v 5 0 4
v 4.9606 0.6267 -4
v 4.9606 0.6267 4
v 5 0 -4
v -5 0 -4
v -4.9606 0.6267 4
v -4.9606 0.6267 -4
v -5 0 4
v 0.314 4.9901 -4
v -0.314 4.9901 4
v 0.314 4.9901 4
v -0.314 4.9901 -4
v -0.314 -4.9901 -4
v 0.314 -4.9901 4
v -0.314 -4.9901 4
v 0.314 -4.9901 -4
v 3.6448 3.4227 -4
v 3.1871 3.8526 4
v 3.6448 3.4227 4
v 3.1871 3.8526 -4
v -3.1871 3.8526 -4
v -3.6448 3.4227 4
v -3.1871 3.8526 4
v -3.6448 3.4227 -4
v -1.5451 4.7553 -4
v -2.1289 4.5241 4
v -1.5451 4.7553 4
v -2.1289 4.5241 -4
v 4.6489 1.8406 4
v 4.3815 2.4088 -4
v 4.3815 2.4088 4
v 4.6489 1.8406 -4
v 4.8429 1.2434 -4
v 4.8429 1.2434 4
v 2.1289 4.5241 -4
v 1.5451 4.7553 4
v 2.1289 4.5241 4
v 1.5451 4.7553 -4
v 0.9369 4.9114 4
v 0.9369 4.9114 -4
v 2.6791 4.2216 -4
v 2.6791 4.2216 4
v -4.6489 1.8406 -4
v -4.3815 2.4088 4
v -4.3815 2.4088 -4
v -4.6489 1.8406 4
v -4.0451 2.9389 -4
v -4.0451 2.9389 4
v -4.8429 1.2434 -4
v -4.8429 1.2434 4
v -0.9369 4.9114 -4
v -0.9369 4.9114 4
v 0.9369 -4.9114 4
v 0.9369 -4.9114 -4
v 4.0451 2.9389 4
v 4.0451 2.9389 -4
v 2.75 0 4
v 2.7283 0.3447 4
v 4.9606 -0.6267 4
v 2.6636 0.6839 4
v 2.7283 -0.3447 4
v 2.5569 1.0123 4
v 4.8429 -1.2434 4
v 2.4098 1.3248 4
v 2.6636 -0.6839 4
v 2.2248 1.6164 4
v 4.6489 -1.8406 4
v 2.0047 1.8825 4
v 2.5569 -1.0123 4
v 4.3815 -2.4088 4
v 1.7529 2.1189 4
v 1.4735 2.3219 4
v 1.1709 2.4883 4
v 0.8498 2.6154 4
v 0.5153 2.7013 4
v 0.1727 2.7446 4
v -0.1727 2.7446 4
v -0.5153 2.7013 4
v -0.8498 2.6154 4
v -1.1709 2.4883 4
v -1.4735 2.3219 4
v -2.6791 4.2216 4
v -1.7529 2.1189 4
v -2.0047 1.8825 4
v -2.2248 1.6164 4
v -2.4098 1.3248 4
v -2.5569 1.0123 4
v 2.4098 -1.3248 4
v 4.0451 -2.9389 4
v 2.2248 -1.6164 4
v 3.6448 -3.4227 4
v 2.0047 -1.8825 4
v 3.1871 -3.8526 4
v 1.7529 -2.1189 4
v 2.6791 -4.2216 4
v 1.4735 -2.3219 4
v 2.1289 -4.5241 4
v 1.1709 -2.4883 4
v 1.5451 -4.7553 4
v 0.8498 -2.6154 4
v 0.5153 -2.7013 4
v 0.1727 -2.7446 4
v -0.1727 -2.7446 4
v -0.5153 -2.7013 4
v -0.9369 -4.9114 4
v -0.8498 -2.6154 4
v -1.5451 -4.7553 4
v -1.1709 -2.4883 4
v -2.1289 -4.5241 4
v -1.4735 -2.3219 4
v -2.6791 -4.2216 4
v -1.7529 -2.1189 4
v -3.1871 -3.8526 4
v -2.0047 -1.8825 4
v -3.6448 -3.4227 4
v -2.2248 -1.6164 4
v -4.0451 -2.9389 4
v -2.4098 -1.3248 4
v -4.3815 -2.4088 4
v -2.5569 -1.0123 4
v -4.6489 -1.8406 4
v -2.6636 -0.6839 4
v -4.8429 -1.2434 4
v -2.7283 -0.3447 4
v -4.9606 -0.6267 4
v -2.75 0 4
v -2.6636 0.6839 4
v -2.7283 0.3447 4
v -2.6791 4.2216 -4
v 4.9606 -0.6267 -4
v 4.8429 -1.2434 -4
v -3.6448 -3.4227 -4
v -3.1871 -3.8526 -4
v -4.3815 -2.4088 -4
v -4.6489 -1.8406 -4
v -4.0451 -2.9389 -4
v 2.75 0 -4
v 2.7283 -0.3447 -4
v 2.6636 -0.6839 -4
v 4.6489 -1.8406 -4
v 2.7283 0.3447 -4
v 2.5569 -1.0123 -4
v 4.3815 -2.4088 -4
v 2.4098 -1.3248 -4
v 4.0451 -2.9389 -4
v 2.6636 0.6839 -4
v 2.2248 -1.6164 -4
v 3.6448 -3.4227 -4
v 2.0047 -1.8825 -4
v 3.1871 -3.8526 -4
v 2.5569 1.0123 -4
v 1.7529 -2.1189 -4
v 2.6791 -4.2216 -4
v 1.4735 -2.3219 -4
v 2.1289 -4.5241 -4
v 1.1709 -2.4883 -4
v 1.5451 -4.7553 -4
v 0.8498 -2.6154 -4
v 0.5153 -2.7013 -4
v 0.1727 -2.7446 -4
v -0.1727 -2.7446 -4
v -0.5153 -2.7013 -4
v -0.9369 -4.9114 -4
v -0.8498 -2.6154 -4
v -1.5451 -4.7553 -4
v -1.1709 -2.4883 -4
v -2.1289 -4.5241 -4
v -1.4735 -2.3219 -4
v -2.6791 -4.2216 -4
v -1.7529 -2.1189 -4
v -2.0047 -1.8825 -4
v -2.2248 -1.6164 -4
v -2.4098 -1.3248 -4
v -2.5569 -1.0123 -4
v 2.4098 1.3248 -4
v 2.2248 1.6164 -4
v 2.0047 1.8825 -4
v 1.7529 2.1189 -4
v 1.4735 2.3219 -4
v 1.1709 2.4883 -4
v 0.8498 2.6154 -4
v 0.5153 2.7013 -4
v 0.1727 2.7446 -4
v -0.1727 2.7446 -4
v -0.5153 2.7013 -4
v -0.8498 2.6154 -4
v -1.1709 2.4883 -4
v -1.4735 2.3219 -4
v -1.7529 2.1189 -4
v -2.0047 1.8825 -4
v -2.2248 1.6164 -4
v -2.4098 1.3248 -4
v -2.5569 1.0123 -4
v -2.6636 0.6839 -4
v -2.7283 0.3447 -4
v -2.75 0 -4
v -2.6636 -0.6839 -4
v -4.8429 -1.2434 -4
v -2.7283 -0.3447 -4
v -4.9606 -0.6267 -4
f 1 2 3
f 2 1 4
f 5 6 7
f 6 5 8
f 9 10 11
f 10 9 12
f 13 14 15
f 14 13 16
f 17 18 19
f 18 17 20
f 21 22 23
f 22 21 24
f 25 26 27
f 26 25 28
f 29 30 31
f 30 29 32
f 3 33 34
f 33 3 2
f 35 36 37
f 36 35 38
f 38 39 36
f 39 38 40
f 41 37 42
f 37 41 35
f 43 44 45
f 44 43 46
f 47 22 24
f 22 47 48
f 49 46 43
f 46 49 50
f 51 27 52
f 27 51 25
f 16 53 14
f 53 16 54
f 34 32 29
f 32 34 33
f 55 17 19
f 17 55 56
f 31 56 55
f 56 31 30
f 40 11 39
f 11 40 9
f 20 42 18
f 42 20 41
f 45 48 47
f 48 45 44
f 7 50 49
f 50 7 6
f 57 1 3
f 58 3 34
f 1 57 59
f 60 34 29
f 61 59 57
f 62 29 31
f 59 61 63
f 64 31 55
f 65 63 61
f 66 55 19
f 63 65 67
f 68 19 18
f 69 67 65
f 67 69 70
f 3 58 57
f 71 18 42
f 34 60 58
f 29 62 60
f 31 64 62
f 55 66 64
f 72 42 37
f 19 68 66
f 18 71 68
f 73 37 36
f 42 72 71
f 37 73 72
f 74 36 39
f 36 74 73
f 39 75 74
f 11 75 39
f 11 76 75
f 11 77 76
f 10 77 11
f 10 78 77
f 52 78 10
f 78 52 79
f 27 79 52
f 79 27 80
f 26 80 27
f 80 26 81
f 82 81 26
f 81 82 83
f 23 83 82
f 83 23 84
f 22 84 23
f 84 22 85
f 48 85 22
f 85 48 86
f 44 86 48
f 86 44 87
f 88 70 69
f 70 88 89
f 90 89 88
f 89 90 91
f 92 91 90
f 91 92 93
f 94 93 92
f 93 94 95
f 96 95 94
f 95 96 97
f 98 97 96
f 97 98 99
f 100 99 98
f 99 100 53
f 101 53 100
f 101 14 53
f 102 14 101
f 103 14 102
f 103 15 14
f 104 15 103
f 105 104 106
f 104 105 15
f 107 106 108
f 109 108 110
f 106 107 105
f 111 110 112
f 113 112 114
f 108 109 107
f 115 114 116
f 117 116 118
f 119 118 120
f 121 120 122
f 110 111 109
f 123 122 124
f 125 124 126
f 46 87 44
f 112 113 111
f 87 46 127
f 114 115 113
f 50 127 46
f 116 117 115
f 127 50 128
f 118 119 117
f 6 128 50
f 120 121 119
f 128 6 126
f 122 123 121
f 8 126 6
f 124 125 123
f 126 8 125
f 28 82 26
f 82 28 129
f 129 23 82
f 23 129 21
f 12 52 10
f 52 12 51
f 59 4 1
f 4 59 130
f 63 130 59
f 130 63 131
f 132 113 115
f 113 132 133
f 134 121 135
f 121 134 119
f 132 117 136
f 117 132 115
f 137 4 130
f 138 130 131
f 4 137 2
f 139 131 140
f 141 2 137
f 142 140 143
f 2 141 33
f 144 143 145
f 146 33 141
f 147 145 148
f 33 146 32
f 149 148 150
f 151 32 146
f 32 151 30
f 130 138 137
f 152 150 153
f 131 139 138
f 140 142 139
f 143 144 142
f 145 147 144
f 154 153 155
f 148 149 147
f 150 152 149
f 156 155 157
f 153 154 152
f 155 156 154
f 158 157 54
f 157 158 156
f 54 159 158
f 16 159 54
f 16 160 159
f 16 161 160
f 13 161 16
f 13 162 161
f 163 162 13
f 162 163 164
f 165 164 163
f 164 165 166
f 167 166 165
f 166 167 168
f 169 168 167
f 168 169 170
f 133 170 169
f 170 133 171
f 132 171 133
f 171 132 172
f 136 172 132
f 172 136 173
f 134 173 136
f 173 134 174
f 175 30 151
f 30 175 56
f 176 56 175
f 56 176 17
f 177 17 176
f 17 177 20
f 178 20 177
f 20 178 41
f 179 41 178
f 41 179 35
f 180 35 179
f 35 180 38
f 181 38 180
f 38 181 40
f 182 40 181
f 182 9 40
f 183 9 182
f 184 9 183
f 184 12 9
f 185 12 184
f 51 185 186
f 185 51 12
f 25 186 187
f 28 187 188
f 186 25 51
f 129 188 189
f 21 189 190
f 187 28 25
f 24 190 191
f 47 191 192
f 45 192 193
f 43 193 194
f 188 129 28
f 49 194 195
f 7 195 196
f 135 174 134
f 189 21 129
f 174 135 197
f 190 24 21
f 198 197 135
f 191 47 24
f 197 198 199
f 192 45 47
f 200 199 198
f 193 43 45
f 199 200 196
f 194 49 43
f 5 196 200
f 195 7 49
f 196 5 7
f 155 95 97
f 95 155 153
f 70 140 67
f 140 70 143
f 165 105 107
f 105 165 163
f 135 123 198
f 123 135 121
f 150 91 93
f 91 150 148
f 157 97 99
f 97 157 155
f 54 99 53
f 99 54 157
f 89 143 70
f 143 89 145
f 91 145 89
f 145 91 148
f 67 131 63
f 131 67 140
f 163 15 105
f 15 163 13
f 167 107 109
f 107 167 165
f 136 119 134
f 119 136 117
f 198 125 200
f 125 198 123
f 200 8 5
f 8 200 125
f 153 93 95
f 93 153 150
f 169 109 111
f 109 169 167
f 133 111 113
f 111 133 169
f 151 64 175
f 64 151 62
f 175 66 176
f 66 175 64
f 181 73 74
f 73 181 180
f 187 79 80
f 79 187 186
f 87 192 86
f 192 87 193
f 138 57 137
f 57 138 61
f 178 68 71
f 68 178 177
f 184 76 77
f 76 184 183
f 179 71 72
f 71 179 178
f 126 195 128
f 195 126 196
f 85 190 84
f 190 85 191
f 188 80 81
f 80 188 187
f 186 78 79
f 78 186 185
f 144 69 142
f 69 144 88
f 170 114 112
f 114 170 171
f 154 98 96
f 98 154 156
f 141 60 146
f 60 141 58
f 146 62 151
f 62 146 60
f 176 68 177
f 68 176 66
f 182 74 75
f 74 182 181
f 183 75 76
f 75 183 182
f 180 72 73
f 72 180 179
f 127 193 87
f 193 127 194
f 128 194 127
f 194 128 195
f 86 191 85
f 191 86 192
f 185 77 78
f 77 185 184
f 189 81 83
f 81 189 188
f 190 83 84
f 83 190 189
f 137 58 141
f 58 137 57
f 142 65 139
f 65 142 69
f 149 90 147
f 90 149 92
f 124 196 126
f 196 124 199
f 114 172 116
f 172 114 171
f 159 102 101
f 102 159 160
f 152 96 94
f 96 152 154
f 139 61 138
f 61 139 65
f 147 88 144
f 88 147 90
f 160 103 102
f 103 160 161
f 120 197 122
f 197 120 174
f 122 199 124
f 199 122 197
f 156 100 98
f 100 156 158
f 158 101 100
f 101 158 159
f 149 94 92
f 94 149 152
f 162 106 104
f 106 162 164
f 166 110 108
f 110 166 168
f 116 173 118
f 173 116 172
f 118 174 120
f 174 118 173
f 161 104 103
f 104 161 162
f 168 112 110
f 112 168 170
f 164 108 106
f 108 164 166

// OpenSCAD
$fn = 50;


difference() {
	union() {
		translate(v = [0, 0, -4.0000000000]) {
			cylinder(h = 8, r = 5.0000000000);
		}
	}
	union() {
		translate(v = [0, 0, -100.0000000000]) {
			cylinder(h = 200, r = 2.7500000000);
		}
	}
}
